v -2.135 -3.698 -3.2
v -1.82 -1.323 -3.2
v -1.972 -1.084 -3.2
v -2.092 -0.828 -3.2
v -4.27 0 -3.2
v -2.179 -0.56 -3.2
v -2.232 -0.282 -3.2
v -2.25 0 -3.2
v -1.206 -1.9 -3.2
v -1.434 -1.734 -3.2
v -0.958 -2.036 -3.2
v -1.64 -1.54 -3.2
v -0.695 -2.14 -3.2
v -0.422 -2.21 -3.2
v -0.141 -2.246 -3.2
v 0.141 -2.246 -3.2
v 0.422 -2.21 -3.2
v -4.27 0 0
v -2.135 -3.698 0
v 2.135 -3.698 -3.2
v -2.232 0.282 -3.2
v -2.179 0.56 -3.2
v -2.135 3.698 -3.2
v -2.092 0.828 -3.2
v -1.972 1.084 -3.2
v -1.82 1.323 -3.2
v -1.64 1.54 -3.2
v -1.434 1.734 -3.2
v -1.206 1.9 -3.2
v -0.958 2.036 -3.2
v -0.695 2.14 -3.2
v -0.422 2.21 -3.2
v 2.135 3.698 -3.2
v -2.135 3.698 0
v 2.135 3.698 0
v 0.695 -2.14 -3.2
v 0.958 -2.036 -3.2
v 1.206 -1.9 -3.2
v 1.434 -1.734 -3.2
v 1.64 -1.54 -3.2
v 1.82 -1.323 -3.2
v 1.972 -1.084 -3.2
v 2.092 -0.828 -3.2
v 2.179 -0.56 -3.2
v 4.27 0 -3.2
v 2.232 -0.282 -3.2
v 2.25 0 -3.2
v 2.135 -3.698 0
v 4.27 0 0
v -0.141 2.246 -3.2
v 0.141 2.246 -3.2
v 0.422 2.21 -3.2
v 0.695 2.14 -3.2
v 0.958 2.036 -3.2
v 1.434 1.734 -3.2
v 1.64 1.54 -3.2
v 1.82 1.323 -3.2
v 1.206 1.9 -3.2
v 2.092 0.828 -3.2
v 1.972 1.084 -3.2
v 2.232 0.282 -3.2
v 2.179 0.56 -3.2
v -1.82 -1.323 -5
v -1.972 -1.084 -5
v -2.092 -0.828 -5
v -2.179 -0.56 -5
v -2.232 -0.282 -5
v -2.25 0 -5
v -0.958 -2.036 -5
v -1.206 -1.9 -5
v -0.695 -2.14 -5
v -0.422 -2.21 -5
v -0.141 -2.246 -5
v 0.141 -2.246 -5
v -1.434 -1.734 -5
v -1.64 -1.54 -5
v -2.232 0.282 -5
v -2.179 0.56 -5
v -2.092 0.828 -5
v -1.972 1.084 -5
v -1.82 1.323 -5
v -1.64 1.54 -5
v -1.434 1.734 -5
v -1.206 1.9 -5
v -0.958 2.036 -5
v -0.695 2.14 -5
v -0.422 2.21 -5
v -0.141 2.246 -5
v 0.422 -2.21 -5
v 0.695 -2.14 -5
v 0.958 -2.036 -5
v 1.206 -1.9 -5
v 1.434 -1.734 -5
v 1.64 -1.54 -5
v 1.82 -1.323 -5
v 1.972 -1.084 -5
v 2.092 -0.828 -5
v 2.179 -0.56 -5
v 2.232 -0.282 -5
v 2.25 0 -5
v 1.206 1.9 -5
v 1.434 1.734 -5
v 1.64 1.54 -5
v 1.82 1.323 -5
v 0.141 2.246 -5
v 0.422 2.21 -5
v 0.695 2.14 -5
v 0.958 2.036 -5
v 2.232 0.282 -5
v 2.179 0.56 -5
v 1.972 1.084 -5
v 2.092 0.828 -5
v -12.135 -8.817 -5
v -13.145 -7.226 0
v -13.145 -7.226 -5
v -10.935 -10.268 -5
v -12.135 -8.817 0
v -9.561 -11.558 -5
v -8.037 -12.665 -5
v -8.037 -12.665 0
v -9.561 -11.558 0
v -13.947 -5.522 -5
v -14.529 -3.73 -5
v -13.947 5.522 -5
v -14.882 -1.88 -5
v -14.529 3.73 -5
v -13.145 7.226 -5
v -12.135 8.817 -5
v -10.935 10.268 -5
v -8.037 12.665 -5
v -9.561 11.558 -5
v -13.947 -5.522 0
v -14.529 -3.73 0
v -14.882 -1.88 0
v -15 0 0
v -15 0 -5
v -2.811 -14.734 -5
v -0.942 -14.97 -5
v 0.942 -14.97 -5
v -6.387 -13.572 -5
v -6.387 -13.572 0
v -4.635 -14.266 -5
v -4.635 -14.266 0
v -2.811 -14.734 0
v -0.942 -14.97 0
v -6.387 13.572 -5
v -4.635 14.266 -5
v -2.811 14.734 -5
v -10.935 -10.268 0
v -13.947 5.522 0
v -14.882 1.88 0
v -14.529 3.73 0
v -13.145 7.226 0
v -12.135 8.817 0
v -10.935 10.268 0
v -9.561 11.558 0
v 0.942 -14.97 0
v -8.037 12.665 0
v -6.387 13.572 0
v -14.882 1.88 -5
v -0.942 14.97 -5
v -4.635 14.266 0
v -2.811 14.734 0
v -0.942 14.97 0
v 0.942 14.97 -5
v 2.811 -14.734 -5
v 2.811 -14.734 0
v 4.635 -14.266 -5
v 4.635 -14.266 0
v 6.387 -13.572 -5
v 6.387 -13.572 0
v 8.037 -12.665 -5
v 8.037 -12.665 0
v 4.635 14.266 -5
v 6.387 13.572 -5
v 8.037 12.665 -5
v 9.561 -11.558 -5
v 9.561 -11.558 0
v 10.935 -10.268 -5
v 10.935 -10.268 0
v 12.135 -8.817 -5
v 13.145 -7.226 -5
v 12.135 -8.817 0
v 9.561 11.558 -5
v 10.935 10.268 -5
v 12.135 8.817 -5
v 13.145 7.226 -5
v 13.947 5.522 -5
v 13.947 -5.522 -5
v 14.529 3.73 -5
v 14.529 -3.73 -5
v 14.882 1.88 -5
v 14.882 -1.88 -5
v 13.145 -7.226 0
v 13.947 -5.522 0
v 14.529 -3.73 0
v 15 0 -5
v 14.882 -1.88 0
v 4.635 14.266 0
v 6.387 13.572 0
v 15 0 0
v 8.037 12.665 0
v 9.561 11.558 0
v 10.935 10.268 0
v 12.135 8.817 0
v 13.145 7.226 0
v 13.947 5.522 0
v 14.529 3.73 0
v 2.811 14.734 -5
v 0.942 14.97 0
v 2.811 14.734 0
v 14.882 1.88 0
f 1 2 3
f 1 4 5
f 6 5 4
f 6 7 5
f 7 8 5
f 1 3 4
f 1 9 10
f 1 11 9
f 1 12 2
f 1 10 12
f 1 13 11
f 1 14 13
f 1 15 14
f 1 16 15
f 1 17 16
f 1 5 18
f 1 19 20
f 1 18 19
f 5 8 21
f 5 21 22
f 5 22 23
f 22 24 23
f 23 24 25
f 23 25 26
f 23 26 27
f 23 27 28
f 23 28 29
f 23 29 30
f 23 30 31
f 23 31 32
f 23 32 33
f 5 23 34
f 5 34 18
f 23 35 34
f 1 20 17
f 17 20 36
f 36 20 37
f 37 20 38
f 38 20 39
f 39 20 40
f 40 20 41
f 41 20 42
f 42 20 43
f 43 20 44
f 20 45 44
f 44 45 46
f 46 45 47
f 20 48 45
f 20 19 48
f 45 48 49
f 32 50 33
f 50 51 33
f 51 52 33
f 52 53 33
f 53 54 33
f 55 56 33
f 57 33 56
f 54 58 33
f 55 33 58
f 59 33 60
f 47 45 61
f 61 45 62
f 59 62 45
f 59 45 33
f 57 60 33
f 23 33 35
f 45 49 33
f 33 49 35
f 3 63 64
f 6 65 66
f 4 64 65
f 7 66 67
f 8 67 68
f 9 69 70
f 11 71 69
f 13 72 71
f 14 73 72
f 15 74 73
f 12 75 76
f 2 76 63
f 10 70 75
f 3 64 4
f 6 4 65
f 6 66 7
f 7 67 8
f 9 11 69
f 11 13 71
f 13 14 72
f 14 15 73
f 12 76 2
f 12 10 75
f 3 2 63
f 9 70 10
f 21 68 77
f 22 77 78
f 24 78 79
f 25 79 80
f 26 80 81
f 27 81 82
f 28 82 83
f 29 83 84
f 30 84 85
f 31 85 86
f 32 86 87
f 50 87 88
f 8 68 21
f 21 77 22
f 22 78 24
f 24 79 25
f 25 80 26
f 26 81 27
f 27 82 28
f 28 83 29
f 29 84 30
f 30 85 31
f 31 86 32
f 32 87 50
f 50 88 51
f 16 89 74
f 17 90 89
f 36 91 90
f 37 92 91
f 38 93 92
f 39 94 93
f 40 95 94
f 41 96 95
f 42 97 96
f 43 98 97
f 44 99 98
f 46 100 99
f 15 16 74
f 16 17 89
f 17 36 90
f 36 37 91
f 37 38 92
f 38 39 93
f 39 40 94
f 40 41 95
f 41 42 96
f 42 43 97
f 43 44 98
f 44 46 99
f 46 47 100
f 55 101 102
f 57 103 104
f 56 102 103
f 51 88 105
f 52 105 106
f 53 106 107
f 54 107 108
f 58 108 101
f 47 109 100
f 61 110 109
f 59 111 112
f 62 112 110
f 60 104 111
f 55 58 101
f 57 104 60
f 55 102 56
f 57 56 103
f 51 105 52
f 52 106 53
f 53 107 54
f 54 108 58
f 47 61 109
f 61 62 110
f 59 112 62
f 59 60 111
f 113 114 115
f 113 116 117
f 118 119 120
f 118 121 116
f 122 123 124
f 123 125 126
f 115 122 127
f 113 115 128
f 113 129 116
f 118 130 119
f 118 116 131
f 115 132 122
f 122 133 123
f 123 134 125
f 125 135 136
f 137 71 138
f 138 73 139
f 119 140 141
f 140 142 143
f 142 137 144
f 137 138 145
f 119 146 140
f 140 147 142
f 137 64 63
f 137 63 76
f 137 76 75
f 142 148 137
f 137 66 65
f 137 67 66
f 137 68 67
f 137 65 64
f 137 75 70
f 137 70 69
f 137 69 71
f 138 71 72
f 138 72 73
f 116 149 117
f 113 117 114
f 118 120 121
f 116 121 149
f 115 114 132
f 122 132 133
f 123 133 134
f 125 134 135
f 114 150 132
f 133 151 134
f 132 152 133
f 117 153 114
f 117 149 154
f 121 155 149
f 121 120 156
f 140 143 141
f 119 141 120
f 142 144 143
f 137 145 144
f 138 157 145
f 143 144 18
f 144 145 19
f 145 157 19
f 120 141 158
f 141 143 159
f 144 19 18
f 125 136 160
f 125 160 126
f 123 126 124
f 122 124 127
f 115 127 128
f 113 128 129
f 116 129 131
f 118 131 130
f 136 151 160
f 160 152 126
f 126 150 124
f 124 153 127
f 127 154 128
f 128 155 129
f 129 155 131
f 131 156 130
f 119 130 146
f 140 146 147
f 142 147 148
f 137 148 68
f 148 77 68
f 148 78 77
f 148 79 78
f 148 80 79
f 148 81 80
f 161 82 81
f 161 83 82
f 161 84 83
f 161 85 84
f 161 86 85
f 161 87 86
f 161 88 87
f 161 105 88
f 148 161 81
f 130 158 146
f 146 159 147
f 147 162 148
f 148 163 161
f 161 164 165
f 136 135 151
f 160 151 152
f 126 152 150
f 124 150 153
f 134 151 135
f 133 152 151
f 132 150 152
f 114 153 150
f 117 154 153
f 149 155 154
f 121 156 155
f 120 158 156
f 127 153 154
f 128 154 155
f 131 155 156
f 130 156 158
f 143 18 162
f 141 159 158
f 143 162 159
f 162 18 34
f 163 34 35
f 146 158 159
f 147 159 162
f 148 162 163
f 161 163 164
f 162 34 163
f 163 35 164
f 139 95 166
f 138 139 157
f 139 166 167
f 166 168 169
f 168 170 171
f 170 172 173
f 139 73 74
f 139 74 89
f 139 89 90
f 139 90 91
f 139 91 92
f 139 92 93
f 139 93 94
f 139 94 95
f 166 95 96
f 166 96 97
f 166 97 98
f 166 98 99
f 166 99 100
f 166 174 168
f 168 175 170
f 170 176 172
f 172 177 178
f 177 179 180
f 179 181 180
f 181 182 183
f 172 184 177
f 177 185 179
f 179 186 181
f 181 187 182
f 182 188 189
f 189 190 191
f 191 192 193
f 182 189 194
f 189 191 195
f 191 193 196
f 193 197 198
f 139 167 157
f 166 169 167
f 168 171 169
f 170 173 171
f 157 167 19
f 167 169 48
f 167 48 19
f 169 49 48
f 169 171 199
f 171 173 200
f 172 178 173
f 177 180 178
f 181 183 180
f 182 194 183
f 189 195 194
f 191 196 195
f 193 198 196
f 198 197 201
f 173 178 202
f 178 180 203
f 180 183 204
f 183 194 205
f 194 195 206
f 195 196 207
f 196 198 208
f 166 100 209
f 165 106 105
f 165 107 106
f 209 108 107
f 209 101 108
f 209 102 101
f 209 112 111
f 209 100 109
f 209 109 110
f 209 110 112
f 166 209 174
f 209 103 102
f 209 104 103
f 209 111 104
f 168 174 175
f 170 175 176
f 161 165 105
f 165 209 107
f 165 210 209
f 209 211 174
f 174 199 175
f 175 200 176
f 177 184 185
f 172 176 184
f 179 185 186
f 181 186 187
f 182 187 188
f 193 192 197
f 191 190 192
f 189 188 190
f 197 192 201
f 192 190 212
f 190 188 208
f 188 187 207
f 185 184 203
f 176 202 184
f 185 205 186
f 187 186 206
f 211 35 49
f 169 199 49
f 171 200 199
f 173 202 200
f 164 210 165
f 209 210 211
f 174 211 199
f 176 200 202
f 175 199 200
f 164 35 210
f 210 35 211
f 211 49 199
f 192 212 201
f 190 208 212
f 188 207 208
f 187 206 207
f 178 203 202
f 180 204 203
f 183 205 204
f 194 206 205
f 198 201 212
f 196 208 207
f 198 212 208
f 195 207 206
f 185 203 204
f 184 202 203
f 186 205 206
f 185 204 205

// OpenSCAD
$fn = 50;

difference() {
	union() {
		translate(v = [0, 0, -5.0]) {
			cylinder(h = 5.0, r = 15.0);
		}
	}
	union() {
		translate(v = [0, 0, 0]) {
			rotate(a = [0, 0, 0]) {
				difference() {
					union() {
						translate(v = [0, 0, -3.2]) {
							linear_extrude(height = 3.2) {
								polygon(points = [[4.2698, 0.0], [2.1349000000000005, 3.697755269078796], [-2.134899999999999, 3.6977552690787965], [-4.2698, 5.228996902999369e-16], [-2.134900000000002, -3.6977552690787956], [2.1348999999999974, -3.697755269078798]]);
							}
						}
					}
					union();
				}
			}
		}
		#translate(v = [0, 0, -100.0]) {
			cylinder(h = 200, r = 2.25);
		}
	}
}
